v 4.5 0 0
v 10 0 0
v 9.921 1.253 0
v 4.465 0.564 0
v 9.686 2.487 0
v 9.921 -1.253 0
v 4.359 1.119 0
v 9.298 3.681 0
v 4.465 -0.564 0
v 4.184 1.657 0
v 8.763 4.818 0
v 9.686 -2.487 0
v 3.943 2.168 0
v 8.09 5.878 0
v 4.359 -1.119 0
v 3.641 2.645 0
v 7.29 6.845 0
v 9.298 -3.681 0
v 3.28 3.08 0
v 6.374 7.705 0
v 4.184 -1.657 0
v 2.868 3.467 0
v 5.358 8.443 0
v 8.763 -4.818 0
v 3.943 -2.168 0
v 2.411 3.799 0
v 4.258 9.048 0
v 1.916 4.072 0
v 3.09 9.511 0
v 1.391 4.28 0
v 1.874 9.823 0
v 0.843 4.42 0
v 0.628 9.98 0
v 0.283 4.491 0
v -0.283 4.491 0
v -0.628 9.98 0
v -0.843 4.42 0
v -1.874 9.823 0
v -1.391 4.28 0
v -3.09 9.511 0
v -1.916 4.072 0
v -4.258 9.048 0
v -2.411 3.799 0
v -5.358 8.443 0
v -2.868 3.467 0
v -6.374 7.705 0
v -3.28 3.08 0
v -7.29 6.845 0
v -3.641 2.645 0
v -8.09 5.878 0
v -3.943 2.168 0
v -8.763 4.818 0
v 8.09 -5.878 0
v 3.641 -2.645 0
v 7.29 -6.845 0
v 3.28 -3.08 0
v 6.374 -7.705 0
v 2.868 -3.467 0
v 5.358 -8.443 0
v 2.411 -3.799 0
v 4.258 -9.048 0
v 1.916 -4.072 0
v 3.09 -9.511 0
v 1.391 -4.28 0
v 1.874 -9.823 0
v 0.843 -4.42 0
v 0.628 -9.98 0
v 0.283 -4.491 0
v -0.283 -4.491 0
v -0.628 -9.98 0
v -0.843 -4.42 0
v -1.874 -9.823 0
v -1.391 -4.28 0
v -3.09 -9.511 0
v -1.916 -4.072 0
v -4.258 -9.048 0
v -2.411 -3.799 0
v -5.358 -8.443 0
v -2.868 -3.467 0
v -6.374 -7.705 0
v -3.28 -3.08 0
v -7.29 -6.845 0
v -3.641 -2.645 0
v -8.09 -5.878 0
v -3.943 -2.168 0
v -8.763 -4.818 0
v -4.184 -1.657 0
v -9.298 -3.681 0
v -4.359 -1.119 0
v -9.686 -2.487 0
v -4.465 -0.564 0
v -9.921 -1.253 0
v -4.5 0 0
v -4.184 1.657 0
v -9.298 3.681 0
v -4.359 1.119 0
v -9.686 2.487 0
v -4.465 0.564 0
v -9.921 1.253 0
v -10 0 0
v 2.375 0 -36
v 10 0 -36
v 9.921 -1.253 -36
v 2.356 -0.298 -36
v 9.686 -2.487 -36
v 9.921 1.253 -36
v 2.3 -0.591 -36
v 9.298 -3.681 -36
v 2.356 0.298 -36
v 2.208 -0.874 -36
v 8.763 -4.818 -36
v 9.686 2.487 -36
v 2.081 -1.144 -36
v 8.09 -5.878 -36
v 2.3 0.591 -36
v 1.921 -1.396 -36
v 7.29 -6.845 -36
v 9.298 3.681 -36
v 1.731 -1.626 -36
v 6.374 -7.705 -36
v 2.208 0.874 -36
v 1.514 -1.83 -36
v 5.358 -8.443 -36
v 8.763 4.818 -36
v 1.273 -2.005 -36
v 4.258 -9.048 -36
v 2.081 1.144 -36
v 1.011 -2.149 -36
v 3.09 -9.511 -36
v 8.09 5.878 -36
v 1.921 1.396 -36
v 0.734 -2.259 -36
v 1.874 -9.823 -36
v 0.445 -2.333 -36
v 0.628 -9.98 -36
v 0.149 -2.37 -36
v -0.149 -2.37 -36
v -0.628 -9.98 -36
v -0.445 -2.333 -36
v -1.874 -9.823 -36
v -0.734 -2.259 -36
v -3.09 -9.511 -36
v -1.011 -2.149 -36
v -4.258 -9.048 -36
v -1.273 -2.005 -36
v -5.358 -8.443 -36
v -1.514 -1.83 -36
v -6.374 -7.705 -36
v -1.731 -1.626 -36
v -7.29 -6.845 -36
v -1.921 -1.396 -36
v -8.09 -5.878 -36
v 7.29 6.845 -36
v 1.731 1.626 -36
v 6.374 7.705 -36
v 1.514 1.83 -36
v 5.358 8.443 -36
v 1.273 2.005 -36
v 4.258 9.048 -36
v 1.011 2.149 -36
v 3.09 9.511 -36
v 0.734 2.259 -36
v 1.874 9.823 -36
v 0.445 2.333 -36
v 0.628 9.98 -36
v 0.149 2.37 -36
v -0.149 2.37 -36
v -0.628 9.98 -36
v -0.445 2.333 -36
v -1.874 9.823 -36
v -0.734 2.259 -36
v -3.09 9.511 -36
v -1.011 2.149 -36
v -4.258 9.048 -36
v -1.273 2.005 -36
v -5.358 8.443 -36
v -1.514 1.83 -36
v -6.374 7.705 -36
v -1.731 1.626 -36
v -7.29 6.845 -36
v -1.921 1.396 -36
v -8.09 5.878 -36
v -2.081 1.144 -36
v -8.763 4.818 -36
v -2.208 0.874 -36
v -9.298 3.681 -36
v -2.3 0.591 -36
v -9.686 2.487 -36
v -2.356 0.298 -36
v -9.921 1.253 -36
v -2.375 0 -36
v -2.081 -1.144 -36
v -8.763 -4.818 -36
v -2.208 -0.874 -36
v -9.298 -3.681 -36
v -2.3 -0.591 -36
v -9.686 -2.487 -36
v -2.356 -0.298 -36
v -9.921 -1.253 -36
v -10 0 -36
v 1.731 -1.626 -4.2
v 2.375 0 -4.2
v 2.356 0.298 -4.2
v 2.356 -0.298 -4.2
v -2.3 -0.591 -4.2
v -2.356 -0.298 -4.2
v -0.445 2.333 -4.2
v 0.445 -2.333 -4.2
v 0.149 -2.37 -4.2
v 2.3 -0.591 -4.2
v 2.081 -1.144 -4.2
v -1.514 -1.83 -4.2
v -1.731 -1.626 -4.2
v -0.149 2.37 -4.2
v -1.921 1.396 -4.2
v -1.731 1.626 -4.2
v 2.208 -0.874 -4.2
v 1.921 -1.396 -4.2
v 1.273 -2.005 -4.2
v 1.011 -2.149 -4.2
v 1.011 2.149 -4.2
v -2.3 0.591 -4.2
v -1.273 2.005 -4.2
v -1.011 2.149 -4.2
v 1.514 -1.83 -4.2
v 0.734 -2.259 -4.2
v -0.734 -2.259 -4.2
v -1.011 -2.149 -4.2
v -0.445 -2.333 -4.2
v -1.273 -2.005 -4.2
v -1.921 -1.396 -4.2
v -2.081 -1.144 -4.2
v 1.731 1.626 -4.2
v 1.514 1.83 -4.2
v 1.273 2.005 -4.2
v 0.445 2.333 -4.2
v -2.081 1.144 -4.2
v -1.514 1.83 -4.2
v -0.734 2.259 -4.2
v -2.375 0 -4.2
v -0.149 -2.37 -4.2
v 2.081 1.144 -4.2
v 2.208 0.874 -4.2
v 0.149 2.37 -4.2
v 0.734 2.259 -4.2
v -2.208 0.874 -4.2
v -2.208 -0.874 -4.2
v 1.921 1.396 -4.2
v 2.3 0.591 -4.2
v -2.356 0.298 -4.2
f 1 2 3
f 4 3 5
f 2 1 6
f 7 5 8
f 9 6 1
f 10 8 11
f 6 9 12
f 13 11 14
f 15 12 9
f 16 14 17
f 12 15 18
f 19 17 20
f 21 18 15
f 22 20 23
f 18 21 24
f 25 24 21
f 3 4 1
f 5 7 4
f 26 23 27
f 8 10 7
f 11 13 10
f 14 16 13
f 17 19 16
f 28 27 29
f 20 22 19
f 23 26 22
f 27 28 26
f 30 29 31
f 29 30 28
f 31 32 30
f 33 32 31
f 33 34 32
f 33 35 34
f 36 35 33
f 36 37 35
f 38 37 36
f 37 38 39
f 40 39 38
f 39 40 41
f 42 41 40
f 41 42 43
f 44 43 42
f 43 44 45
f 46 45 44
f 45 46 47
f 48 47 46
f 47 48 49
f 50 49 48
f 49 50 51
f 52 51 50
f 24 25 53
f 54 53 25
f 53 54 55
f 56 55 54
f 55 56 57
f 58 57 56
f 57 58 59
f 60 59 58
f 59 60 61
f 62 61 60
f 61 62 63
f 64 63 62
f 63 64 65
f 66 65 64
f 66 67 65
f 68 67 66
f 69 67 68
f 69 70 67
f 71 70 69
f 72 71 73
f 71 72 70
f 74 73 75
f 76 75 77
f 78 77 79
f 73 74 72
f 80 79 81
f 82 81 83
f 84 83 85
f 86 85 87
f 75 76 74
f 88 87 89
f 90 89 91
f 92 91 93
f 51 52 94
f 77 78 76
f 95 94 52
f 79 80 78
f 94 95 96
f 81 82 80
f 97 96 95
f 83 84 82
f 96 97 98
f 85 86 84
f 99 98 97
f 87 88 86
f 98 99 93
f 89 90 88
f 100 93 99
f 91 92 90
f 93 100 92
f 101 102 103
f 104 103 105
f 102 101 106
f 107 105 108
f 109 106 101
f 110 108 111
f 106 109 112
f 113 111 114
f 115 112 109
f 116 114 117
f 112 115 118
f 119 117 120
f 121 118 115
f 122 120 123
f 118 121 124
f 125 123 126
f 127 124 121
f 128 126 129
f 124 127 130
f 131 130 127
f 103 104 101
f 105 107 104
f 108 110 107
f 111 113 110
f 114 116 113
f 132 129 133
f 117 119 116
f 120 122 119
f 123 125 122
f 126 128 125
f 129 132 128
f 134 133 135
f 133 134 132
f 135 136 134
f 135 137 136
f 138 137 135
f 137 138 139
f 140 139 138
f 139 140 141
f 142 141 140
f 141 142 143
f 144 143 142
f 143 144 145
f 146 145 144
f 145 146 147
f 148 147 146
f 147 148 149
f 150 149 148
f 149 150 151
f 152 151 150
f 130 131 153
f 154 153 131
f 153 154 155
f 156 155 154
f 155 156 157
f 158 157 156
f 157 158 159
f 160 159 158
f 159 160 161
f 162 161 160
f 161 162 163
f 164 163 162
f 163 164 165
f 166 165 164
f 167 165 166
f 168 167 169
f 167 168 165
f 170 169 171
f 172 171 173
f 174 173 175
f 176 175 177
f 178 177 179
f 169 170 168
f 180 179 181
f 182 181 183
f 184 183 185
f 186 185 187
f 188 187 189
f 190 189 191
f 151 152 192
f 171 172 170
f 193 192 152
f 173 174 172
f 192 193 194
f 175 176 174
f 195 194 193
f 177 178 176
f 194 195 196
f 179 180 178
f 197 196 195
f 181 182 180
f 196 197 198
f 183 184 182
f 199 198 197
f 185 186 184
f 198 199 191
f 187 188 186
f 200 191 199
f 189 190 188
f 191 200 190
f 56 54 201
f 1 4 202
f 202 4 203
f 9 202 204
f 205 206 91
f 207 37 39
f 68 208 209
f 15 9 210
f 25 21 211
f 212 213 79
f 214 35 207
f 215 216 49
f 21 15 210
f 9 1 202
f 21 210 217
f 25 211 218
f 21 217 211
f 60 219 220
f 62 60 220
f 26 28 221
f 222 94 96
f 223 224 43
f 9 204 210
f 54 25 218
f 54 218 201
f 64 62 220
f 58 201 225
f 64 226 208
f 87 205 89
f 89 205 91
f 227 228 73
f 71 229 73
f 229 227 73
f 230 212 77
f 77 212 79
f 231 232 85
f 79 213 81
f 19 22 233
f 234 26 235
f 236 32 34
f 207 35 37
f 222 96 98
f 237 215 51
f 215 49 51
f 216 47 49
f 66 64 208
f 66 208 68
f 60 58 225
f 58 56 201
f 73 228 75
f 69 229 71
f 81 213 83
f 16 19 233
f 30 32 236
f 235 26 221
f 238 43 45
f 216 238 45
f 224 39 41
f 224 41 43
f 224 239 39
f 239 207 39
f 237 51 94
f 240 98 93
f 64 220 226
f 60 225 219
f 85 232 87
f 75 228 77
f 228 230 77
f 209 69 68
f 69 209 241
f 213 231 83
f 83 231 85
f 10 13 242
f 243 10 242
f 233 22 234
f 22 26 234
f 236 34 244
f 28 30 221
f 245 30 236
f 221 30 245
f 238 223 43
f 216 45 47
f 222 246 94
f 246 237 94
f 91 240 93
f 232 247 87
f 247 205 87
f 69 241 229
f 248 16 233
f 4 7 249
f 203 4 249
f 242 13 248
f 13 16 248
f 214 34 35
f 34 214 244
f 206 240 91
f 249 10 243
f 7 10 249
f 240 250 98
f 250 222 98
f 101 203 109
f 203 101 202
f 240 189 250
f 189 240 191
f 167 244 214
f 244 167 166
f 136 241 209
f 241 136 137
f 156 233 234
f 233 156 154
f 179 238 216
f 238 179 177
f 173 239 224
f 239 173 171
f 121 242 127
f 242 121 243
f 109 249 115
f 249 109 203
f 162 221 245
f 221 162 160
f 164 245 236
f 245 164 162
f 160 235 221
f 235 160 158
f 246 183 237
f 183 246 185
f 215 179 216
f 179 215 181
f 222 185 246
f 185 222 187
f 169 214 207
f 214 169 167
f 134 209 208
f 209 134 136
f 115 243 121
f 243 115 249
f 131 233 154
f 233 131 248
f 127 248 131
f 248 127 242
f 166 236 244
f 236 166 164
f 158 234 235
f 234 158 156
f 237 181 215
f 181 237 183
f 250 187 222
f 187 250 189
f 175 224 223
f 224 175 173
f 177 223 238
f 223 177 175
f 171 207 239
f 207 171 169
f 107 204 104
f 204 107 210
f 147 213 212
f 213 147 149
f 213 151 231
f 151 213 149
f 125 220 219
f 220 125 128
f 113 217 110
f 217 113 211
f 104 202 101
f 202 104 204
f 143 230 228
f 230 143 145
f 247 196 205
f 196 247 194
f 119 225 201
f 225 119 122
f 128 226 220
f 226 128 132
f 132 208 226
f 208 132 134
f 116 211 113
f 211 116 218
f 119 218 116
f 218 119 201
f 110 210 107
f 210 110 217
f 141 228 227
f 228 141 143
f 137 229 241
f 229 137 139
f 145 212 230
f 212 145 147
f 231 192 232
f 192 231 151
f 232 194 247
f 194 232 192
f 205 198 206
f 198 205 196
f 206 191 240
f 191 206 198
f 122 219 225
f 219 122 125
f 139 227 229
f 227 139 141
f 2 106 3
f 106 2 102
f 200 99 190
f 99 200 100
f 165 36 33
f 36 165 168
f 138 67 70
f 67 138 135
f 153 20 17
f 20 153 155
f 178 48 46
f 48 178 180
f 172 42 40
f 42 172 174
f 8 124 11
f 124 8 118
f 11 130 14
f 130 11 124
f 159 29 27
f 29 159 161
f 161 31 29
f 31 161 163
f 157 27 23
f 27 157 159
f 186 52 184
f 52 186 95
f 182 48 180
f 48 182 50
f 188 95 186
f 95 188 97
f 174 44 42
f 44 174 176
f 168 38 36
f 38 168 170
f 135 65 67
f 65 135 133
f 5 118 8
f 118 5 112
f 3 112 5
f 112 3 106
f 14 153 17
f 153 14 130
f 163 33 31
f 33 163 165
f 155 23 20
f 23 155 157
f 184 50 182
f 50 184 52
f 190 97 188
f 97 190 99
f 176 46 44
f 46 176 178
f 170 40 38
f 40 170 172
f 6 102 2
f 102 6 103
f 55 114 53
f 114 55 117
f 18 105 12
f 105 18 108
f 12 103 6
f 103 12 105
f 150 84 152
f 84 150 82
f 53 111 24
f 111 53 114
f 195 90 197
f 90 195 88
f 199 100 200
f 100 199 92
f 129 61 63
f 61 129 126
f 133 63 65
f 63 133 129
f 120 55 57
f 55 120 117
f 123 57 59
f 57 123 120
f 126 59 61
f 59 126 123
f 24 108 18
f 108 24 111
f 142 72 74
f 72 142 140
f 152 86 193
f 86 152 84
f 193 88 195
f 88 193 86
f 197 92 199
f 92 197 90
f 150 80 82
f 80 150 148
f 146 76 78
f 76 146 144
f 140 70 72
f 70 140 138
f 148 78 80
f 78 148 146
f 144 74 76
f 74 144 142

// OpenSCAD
$fn = 50;


difference() {
	union() {
		translate(v = [0, 0, -36.0000000000]) {
			cylinder(h = 36, r = 10.0000000000);
		}
	}
	union() {
		translate(v = [0, 0, 0]) {
			rotate(a = [0, 0, 0]) {
				difference() {
					union() {
						#translate(v = [0, 0, -36.0000000000]) {
							cylinder(h = 36, r = 2.2500000000);
						}
						#translate(v = [0, 0, -4.2000000000]) {
							cylinder(h = 4.2000000000, r1 = 2.3750000000, r2 = 4.5000000000);
						}
						#translate(v = [0, 0, -36.0000000000]) {
							cylinder(h = 36, r = 2.3750000000);
						}
						#translate(v = [0, 0, -36.0000000000]) {
							cylinder(h = 36, r = 2.2500000000);
						}
					}
					union();
				}
			}
		}
	}
}
